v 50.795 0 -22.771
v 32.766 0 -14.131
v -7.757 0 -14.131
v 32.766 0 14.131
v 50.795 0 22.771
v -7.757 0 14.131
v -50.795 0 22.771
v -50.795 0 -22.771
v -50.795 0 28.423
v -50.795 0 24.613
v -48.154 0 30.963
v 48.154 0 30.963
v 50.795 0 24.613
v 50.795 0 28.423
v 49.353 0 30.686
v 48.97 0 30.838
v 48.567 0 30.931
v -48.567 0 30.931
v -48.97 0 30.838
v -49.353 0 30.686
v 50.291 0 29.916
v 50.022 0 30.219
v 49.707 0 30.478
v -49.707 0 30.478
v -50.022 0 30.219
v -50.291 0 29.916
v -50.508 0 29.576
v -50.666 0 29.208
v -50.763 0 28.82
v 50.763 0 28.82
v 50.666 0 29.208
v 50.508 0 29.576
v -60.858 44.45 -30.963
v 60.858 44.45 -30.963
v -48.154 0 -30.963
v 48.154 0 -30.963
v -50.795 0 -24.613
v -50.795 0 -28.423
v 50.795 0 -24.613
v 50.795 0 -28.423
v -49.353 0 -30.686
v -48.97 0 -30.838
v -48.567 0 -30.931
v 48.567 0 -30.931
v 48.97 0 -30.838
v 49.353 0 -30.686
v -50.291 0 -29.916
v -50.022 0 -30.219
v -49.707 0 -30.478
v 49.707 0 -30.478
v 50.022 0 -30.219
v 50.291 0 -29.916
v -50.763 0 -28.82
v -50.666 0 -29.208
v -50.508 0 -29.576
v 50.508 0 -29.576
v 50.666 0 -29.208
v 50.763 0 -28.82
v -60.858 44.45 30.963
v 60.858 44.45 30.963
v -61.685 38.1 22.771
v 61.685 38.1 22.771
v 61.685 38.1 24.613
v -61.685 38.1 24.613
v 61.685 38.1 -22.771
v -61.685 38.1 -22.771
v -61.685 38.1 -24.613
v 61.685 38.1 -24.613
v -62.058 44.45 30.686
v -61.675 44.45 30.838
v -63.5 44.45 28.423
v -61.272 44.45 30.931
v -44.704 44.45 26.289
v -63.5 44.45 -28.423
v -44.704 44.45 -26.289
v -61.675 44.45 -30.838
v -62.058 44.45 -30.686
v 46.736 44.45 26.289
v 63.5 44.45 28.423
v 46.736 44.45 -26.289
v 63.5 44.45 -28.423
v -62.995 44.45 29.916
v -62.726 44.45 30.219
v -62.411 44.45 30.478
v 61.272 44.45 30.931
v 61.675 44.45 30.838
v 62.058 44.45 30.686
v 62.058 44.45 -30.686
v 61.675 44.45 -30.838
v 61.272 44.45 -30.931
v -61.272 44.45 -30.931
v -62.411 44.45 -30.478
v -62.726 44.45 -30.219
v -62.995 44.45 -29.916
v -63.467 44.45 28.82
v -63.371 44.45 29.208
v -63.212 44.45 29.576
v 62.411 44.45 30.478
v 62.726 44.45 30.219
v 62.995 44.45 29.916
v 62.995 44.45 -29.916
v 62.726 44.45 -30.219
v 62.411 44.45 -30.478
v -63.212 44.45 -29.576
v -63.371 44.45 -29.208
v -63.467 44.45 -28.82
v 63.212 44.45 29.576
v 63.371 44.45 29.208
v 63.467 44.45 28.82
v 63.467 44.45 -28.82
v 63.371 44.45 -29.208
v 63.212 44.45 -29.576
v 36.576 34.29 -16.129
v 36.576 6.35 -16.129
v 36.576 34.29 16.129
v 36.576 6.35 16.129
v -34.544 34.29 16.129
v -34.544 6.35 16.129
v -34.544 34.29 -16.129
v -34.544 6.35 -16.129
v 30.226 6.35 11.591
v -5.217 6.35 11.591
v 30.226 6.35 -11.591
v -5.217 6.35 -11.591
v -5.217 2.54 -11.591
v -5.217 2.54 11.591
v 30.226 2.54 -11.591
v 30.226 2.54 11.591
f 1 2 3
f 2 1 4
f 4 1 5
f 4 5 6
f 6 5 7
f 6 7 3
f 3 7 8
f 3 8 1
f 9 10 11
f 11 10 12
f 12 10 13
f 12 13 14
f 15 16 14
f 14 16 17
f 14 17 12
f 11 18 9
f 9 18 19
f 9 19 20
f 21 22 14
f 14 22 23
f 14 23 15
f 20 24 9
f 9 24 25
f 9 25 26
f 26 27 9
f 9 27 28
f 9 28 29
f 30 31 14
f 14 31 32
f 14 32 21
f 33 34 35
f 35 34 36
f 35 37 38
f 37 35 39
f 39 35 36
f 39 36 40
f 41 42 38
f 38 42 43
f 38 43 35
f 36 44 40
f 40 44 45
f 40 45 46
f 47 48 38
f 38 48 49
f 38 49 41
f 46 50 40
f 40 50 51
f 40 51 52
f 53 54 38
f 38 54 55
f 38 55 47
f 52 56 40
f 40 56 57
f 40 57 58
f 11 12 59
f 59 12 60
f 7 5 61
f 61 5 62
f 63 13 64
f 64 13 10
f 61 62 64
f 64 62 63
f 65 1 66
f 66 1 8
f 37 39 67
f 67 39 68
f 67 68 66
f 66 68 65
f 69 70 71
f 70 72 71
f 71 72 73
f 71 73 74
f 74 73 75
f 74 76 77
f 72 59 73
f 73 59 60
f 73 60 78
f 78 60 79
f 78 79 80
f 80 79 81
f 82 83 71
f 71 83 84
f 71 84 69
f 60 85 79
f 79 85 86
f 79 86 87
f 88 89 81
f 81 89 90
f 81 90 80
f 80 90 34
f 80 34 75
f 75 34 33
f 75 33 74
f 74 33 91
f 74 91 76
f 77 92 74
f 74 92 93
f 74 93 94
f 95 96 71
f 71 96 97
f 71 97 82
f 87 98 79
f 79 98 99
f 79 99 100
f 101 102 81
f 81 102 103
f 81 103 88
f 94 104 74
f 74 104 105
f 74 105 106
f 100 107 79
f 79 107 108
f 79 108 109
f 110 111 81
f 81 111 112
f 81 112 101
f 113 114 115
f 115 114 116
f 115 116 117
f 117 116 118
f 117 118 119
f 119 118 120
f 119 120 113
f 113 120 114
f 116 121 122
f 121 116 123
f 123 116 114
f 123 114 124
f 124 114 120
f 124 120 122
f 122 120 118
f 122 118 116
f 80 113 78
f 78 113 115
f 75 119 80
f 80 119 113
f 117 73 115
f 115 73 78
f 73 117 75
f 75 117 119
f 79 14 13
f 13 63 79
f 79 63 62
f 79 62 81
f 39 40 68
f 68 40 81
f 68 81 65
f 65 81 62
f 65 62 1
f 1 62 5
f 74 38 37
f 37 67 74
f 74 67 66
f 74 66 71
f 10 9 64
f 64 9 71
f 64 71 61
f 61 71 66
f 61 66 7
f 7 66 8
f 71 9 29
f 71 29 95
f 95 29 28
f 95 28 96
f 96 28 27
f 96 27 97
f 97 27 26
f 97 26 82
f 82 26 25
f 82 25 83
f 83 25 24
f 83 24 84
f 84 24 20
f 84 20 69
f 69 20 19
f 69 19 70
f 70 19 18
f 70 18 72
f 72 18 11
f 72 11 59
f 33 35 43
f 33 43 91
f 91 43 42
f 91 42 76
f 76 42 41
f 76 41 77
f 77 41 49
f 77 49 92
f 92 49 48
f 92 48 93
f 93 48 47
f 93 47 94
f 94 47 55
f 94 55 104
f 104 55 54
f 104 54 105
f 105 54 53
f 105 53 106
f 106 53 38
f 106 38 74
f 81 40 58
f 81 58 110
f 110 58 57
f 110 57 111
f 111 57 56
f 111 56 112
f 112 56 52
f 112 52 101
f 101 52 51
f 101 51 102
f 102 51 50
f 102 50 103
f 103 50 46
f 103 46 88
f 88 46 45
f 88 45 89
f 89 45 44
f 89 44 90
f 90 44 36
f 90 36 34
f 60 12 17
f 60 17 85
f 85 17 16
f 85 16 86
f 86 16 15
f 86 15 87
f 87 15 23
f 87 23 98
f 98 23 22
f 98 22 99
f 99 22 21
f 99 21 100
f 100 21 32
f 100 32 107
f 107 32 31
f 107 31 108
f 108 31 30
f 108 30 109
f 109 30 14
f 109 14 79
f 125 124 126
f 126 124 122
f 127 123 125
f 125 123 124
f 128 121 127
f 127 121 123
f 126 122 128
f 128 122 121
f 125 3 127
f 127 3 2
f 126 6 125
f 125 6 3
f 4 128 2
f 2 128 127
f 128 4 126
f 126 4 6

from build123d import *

# Parameters (mm, degrees)
SKETCH1_W           = 127
SKETCH1_H           = 61.9252
BOSS_EXTRUDE1_DEPTH = 44.45
SKETCH1_3_W         = 127
SKETCH1_3_H         = 1.8415
CUT_EXTRUDE2_DEPTH  = 38.1
SKETCH2_W           = 71.12
SKETCH2_H           = 32.258
SKETCH2_W_2         = 35.442647017
SKETCH2_H_2         = 23.182829488
CUT_EXTRUDE3_DEPTH  = 38.1
CHAMFER2_SIZE       = 10.16
CUT_EXTRUDE5_DEPTH  = 100.210800294
FILLET3_R           = 2.54
SKETCH2_3_W         = 35.442647017
SKETCH2_3_H         = 23.182829488
CUT_EXTRUDE6_DEPTH  = 84.466970107
CHAMFER3_SIZE       = 2.54


with BuildPart() as part:
    # Sketch1 → Boss-Extrude1 (new body)
    with BuildSketch(Plane(origin=(0, 0, 0), x_dir=(1, 0, 0), z_dir=(0, 1, 0))):
        Rectangle(SKETCH1_W, SKETCH1_H)
    extrude(amount=BOSS_EXTRUDE1_DEPTH)

    # Sketch1<3> → Cut-Extrude2 (cut)
    with BuildSketch(Plane(origin=(0, 0, 0), x_dir=(1, 0, 0), z_dir=(0, 1, 0))):
        with Locations((0, 23.69185)):
            Rectangle(SKETCH1_3_W, SKETCH1_3_H)
        with Locations((0, -23.69185)):
            Rectangle(SKETCH1_3_W, SKETCH1_3_H)
    extrude(amount=CUT_EXTRUDE2_DEPTH, mode=Mode.SUBTRACT)

    # Sketch2 → Cut-Extrude3 (cut)
    with BuildSketch(Plane(origin=(0, 44.45, 0), x_dir=(1, 0, 0), z_dir=(0, 1, 0))):
        with Locations((1.016, 0)):
            Rectangle(SKETCH2_W, SKETCH2_H)
        with Locations((12.504676492, 0)):
            Rectangle(SKETCH2_W_2, SKETCH2_H_2, mode=Mode.SUBTRACT)
    extrude(amount=-CUT_EXTRUDE3_DEPTH, mode=Mode.SUBTRACT)

    # Chamfer2
    chamfer2_edges = [part.edges().sort_by_distance(p)[0] for p in [
        (36.576, 44.45, 0),
        (1.016, 44.45, -16.129),
        (-34.544, 44.45, 0),
        (1.016, 44.45, 16.129),
    ]]
    chamfer(chamfer2_edges, length=CHAMFER2_SIZE)

    # Sketch7 → Cut-Extrude5 (cut, through all)
    with BuildSketch(Plane.XY.offset(30.9626)):
        Polygon((-50.795476794, 0), (-63.5, 44.45), (-63.5, 0), align=None)
        Polygon((63.5, 44.45), (50.795476794, 0), (63.5, 0), align=None)
    extrude(amount=-CUT_EXTRUDE5_DEPTH, mode=Mode.SUBTRACT)

    # Fillet3
    fillet3_edges = [part.edges().sort_by_distance(p)[0] for p in [
        (-57.147738397, 22.225, -30.9626),
        (-57.147738397, 22.225, 30.9626),
        (57.147738397, 22.225, 30.9626),
        (57.147738397, 22.225, -30.9626),
    ]]
    fillet(fillet3_edges, radius=FILLET3_R)

    # Sketch2<3> → Cut-Extrude6 (cut, through all)
    with BuildSketch(Plane(origin=(0, 44.45, 0), x_dir=(1, 0, 0), z_dir=(0, 1, 0))):
        with Locations((12.504676492, 0)):
            Rectangle(SKETCH2_3_W, SKETCH2_3_H)
    extrude(amount=-CUT_EXTRUDE6_DEPTH, mode=Mode.SUBTRACT)

    # Chamfer3
    chamfer3_edges = [part.edges().sort_by_distance(p)[0] for p in [
        (30.226, 0, 0),
        (12.504676491, 0, 11.591414744),
        (-5.216647017, 0, 0),
        (12.504676491, 0, -11.591414744),
    ]]
    chamfer(chamfer3_edges, length=CHAMFER3_SIZE)


solid = part.part
